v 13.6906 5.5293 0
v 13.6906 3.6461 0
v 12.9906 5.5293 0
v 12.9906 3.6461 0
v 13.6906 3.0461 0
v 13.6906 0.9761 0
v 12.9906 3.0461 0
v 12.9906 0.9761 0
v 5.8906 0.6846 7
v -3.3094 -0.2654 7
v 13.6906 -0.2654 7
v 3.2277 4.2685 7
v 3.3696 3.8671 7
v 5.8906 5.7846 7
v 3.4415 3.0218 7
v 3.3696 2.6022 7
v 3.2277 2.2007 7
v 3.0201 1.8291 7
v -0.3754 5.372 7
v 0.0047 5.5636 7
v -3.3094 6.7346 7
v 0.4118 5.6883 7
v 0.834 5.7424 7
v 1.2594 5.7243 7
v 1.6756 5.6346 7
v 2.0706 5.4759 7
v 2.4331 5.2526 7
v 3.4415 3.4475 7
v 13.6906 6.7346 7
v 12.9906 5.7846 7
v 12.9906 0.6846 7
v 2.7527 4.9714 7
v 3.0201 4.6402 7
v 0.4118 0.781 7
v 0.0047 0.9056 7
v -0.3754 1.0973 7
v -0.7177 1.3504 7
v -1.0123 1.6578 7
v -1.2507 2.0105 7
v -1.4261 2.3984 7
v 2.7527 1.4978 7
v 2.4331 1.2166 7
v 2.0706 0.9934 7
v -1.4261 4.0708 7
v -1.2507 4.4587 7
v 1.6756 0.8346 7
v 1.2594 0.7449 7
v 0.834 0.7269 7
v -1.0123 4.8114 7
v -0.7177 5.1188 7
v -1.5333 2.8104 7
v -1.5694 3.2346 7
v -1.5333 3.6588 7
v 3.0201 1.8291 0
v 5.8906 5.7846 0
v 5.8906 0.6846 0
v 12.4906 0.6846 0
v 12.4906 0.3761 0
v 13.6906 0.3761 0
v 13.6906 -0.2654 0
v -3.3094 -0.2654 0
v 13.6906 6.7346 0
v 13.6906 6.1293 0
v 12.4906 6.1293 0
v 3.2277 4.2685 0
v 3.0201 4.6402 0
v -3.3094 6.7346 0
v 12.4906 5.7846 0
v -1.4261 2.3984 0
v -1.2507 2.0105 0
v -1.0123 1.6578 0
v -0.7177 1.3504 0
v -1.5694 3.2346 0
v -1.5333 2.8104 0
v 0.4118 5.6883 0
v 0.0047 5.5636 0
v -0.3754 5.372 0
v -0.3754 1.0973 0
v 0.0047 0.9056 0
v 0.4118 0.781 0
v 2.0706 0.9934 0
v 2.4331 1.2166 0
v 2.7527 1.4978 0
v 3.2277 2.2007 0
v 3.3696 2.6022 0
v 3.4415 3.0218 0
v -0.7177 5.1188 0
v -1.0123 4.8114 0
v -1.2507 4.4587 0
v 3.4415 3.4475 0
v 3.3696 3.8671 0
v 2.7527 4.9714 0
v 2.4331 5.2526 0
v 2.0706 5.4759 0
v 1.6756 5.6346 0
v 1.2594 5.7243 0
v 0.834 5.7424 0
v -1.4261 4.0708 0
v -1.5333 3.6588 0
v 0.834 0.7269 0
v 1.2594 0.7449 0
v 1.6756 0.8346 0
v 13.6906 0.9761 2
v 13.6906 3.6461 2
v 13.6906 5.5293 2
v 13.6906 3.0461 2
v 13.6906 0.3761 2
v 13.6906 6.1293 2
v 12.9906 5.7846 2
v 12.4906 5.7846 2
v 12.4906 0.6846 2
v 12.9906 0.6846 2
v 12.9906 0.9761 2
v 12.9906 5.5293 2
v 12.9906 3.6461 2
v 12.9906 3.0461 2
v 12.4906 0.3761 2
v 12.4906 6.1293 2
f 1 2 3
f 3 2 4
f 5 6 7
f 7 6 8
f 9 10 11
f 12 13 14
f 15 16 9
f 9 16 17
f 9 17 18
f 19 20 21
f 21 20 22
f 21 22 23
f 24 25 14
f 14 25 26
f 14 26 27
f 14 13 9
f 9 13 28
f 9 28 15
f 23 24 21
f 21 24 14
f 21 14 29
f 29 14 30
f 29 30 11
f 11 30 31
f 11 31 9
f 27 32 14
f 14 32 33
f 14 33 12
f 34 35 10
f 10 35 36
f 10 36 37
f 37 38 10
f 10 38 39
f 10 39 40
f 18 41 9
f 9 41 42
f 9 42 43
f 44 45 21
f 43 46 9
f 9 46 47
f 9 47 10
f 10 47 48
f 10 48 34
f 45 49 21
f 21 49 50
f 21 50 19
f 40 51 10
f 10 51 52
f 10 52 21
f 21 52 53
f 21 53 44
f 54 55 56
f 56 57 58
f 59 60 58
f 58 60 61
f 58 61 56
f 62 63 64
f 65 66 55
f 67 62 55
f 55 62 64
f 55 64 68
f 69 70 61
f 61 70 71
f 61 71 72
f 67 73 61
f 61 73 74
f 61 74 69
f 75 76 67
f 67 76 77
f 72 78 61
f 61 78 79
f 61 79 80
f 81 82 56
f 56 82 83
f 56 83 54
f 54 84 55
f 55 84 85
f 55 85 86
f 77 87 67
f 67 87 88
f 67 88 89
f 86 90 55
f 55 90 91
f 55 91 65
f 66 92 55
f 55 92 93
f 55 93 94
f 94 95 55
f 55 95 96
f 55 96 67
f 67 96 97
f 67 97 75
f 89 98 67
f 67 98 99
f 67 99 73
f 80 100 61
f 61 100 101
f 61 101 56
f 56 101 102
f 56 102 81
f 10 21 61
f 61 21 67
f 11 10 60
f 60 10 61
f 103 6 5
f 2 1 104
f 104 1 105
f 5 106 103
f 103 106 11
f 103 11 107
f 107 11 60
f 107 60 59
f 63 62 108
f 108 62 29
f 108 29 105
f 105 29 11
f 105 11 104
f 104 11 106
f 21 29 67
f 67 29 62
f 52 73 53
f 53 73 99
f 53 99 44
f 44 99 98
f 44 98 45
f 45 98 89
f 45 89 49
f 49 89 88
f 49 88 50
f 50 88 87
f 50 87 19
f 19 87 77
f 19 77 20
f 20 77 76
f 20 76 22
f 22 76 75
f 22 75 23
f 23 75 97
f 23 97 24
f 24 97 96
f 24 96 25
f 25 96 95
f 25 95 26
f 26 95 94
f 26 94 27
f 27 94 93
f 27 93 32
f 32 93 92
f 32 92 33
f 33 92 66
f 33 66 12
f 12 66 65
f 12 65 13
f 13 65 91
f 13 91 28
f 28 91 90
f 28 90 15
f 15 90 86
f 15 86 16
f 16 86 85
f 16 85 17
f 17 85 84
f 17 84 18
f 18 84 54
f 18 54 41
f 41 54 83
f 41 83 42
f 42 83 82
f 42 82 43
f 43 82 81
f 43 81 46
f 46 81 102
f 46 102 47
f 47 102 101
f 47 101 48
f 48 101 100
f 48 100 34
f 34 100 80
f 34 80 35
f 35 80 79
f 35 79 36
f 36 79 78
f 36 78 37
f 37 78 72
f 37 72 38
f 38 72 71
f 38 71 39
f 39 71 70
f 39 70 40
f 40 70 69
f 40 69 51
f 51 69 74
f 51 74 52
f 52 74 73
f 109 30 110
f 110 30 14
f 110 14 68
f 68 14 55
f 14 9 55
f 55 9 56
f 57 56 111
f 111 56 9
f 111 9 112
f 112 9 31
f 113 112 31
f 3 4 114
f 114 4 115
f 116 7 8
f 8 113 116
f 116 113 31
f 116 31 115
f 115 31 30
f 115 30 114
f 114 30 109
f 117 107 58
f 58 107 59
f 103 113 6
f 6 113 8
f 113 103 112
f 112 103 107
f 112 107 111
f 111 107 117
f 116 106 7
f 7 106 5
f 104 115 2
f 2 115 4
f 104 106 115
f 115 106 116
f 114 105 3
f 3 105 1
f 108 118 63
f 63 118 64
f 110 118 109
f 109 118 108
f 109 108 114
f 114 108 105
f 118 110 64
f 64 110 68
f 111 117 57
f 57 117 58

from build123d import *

# Parameters (mm, degrees)
CROQUIS1_W              = 17
CROQUIS1_H              = 7
SALIENTE_EXTRUIR1_DEPTH = 7
CROQUIS2_R              = 2.51
CROQUIS2_W              = 7.1
CROQUIS2_H              = 5.1
CORTAR_EXTRUIR2_DEPTH   = 7
CROQUIS4_W              = 0.7
CROQUIS4_H              = 0.6
CORTAR_EXTRUIR3_DEPTH   = 2
CROQUIS5_W              = 0.5
CROQUIS5_H              = 0.344672938
CROQUIS5_H_2            = 0.308474041
CORTAR_EXTRUIR4_DEPTH   = 2


with BuildPart() as part:
    # Croquis1 → Saliente-Extruir1 (new body)
    with BuildSketch(Plane.XY):
        with Locations((5.190566528, 3.234615385)):
            Rectangle(CROQUIS1_W, CROQUIS1_H)
    extrude(amount=SALIENTE_EXTRUIR1_DEPTH)

    # Croquis2 → Cortar-Extruir2 (cut)
    with BuildSketch(Plane(origin=(0, 0, 0), x_dir=(-1, 0, 0), z_dir=(0, 0, -1))):
        with Locations((-0.940566528, 3.234615385)):
            Circle(CROQUIS2_R)
        with Locations((-9.440566528, 3.234615385)):
            Rectangle(CROQUIS2_W, CROQUIS2_H)
    extrude(amount=-CORTAR_EXTRUIR2_DEPTH, mode=Mode.SUBTRACT)

    # Croquis4 → Cortar-Extruir3 (cut)
    with BuildSketch(Plane(origin=(0, 0, 0), x_dir=(-1, 0, 0), z_dir=(0, 0, -1))):
        with Locations((-13.340566528, 5.829288323)):
            Rectangle(CROQUIS4_W, CROQUIS4_H)
        with Locations((-13.340566528, 3.346068945)):
            Rectangle(CROQUIS4_W, CROQUIS4_H)
        with Locations((-13.340566528, 0.676141344)):
            Rectangle(CROQUIS4_W, CROQUIS4_H)
    extrude(amount=-CORTAR_EXTRUIR3_DEPTH, mode=Mode.SUBTRACT)

    # Croquis5 → Cortar-Extruir4 (cut)
    with BuildSketch(Plane(origin=(0, 0, 0), x_dir=(-1, 0, 0), z_dir=(0, 0, -1))):
        with Locations((-12.740566528, 5.956951854)):
            Rectangle(CROQUIS5_W, CROQUIS5_H)
        with Locations((-12.740566528, 0.530378365)):
            Rectangle(CROQUIS5_W, CROQUIS5_H_2)
    extrude(amount=-CORTAR_EXTRUIR4_DEPTH, mode=Mode.SUBTRACT)


solid = part.part
